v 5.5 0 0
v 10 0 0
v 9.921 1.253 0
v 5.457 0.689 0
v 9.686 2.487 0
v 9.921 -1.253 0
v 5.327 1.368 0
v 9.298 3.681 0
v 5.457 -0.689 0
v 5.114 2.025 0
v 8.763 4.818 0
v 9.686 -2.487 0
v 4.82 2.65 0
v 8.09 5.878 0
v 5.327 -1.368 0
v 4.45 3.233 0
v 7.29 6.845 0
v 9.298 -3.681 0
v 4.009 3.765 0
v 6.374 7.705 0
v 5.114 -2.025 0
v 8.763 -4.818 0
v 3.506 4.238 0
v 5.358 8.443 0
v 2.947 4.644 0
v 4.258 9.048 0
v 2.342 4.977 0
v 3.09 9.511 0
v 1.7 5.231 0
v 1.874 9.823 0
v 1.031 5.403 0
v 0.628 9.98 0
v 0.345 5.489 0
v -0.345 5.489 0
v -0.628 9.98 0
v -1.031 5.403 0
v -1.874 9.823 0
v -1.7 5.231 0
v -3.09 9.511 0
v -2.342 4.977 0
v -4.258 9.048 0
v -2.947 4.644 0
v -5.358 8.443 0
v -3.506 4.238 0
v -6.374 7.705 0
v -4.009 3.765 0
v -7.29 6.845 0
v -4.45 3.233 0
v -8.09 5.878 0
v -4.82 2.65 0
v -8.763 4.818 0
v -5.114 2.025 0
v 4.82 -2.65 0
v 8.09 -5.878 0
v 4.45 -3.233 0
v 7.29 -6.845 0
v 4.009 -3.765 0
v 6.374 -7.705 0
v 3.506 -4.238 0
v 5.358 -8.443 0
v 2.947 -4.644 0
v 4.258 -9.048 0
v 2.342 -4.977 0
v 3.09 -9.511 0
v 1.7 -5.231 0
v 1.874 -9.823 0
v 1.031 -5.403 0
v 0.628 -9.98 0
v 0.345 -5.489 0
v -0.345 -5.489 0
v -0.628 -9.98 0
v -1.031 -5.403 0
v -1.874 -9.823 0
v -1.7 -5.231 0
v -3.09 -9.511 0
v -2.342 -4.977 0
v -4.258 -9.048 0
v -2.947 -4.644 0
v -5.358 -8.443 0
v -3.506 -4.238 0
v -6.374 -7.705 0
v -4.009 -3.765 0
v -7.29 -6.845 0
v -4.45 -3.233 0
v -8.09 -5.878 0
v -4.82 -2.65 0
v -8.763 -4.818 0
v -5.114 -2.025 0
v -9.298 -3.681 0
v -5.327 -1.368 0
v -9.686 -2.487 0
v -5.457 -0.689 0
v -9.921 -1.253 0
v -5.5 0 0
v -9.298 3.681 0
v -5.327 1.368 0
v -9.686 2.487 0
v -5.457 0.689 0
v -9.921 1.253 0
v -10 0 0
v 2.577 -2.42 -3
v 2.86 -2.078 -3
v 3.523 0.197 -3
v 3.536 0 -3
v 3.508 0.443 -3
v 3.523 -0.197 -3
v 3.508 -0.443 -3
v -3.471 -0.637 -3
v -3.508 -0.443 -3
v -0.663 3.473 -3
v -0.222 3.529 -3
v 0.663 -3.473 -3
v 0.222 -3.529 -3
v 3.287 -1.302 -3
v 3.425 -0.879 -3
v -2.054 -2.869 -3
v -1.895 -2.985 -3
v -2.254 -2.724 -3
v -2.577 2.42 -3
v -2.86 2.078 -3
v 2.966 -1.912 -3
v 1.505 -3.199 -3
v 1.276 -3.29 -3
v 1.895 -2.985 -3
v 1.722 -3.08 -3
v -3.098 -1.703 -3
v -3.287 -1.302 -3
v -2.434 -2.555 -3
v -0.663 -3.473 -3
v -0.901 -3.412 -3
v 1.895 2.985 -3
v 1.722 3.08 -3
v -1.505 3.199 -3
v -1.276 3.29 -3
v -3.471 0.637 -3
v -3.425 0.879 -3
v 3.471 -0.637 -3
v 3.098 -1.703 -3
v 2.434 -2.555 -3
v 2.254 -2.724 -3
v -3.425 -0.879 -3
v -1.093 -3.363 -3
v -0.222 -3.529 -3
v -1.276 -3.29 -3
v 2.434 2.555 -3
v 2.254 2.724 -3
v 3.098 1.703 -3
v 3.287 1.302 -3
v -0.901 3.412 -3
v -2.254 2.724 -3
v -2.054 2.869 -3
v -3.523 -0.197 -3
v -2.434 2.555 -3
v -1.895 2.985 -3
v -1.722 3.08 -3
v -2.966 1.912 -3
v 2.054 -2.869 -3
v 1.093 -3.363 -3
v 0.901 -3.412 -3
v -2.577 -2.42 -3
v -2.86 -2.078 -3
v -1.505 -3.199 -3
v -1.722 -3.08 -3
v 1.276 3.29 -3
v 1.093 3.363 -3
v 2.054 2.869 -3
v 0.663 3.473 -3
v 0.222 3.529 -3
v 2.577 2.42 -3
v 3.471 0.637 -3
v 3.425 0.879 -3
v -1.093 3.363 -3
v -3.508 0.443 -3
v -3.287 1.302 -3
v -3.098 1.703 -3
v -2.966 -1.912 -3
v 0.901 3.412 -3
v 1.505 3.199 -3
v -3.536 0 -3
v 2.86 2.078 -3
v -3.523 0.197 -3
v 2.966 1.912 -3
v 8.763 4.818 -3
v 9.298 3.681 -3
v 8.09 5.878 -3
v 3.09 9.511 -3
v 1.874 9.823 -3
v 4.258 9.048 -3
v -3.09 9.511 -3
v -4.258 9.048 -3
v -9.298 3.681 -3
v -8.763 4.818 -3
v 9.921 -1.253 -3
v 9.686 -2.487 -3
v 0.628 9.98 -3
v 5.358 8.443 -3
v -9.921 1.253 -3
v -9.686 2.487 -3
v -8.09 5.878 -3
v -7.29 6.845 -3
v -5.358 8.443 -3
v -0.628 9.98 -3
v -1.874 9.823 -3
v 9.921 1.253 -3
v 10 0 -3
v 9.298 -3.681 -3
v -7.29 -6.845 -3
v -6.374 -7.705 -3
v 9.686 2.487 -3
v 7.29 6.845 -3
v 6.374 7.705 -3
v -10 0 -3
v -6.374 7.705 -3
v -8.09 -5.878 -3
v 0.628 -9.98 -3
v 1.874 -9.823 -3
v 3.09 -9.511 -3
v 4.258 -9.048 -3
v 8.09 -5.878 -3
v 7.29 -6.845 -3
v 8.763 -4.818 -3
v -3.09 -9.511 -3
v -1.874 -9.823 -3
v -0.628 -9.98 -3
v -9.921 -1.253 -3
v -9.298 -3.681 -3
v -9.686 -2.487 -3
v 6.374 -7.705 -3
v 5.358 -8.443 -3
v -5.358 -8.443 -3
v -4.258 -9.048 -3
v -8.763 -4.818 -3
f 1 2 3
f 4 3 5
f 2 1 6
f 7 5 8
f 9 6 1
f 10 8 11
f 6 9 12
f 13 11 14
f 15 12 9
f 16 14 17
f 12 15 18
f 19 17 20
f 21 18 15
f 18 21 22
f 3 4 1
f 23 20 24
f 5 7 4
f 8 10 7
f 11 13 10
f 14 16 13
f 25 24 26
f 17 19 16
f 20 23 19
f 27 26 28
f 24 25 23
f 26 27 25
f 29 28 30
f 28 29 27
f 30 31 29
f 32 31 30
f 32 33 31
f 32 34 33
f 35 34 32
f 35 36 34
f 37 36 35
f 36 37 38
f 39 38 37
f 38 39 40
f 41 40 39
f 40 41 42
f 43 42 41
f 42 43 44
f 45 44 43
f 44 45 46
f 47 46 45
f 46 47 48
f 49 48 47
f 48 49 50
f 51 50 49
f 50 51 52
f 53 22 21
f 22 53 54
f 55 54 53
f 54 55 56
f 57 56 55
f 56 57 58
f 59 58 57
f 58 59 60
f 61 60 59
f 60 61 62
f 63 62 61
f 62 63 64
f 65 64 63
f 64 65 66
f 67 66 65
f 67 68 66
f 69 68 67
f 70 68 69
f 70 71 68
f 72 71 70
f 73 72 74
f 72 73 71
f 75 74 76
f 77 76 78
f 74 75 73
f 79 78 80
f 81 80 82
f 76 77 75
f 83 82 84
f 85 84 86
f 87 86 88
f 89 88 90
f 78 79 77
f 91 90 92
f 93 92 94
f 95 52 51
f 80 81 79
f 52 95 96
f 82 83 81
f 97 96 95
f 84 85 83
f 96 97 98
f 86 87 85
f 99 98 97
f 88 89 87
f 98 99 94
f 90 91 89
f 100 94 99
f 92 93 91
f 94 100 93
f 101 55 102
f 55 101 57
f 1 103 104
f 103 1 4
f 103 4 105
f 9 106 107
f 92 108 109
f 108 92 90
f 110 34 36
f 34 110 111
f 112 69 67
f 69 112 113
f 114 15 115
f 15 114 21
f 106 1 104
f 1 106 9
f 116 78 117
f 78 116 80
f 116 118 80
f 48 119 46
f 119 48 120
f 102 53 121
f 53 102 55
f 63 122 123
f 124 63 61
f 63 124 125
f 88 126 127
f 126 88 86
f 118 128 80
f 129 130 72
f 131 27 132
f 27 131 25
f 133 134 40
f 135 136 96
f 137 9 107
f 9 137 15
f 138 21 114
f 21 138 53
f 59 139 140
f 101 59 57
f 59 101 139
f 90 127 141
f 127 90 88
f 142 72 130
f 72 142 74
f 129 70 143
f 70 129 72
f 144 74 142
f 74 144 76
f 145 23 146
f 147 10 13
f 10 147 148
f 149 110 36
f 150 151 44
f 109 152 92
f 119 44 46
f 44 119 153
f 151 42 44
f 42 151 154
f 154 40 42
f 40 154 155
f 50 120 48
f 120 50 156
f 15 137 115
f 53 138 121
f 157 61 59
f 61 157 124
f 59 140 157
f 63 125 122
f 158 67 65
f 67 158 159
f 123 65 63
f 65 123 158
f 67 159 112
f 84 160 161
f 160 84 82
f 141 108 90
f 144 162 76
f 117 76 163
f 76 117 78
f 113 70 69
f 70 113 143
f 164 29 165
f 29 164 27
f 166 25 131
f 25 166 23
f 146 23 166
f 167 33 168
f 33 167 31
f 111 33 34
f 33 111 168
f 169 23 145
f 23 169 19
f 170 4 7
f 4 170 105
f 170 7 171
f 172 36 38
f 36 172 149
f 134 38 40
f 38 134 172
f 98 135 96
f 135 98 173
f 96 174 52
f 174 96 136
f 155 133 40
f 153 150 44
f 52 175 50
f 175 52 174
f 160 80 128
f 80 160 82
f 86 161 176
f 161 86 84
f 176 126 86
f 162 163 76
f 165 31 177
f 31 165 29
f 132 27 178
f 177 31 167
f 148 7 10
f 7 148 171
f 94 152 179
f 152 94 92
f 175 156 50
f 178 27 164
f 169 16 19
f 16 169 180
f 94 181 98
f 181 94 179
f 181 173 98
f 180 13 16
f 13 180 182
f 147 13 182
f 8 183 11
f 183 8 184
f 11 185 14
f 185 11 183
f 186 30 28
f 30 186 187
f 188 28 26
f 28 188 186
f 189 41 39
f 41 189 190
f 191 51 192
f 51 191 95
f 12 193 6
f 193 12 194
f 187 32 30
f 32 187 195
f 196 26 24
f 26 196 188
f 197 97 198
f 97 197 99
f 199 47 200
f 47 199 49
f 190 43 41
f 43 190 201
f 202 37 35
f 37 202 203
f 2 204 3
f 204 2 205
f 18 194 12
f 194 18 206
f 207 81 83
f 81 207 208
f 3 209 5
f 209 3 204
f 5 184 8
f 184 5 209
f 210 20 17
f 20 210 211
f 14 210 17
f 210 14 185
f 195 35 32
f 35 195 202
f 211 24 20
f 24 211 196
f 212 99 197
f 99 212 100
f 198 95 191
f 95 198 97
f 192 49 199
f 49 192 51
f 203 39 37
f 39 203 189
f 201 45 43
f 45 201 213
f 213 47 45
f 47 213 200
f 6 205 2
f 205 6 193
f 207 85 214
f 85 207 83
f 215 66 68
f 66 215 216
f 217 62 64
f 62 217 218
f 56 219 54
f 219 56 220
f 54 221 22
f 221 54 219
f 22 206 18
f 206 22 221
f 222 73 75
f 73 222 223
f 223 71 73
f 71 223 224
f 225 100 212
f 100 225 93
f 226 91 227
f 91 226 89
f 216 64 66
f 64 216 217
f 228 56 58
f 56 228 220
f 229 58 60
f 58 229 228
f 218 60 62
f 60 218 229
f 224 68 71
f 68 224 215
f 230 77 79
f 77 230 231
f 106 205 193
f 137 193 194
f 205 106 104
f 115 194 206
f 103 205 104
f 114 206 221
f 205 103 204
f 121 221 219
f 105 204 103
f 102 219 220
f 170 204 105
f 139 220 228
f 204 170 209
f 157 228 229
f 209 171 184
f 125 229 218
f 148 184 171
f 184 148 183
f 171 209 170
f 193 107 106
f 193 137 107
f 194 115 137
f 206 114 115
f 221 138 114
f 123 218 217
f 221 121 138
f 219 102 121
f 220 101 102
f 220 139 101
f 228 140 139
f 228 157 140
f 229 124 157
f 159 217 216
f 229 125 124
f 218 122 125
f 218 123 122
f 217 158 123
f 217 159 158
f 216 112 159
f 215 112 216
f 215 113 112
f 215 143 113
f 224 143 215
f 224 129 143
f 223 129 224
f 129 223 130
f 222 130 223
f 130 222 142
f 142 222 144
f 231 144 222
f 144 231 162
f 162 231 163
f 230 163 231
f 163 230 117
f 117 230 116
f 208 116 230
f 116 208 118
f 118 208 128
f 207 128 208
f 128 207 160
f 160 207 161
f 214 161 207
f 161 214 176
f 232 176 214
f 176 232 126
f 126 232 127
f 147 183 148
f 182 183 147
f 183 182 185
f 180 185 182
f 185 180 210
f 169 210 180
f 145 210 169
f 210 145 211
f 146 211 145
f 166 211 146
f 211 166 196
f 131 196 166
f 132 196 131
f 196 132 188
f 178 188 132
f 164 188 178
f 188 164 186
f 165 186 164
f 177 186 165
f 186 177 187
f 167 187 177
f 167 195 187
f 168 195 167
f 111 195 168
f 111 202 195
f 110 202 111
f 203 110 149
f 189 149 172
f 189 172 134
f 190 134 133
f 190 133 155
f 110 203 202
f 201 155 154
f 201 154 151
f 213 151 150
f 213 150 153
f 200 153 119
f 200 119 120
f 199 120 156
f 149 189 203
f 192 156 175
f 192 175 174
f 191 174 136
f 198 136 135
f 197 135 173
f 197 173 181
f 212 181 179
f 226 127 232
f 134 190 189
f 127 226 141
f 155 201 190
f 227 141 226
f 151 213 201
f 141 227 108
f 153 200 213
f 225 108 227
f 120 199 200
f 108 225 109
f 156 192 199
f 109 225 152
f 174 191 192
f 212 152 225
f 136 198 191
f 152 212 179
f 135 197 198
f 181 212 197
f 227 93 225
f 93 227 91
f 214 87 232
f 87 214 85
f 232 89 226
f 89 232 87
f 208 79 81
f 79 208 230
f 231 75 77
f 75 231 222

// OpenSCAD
$fn = 50;


difference() {
	union() {
		translate(v = [0, 0, -3.0000000000]) {
			cylinder(h = 3, r = 10.0000000000);
		}
		cylinder(h = 0, r = 16.0000000000);
	}
	union() {
		translate(v = [0, 0, 0]) {
			rotate(a = [0, 0, 0]) {
				difference() {
					union() {
						#translate(v = [0, 0, -3.0000000000]) {
							cylinder(h = 3, r = 2.2500000000);
						}
						#translate(v = [0, 0, -4.2000000000]) {
							cylinder(h = 4.2000000000, r = 10.0000000000, r1 = 2.7500000000, r2 = 5.5000000000);
						}
						#translate(v = [0, 0, -3.0000000000]) {
							cylinder(h = 3, r = 2.7500000000);
						}
						#translate(v = [0, 0, -3.0000000000]) {
							cylinder(h = 3, r = 2.2500000000);
						}
					}
					union();
				}
			}
		}
	}
}
